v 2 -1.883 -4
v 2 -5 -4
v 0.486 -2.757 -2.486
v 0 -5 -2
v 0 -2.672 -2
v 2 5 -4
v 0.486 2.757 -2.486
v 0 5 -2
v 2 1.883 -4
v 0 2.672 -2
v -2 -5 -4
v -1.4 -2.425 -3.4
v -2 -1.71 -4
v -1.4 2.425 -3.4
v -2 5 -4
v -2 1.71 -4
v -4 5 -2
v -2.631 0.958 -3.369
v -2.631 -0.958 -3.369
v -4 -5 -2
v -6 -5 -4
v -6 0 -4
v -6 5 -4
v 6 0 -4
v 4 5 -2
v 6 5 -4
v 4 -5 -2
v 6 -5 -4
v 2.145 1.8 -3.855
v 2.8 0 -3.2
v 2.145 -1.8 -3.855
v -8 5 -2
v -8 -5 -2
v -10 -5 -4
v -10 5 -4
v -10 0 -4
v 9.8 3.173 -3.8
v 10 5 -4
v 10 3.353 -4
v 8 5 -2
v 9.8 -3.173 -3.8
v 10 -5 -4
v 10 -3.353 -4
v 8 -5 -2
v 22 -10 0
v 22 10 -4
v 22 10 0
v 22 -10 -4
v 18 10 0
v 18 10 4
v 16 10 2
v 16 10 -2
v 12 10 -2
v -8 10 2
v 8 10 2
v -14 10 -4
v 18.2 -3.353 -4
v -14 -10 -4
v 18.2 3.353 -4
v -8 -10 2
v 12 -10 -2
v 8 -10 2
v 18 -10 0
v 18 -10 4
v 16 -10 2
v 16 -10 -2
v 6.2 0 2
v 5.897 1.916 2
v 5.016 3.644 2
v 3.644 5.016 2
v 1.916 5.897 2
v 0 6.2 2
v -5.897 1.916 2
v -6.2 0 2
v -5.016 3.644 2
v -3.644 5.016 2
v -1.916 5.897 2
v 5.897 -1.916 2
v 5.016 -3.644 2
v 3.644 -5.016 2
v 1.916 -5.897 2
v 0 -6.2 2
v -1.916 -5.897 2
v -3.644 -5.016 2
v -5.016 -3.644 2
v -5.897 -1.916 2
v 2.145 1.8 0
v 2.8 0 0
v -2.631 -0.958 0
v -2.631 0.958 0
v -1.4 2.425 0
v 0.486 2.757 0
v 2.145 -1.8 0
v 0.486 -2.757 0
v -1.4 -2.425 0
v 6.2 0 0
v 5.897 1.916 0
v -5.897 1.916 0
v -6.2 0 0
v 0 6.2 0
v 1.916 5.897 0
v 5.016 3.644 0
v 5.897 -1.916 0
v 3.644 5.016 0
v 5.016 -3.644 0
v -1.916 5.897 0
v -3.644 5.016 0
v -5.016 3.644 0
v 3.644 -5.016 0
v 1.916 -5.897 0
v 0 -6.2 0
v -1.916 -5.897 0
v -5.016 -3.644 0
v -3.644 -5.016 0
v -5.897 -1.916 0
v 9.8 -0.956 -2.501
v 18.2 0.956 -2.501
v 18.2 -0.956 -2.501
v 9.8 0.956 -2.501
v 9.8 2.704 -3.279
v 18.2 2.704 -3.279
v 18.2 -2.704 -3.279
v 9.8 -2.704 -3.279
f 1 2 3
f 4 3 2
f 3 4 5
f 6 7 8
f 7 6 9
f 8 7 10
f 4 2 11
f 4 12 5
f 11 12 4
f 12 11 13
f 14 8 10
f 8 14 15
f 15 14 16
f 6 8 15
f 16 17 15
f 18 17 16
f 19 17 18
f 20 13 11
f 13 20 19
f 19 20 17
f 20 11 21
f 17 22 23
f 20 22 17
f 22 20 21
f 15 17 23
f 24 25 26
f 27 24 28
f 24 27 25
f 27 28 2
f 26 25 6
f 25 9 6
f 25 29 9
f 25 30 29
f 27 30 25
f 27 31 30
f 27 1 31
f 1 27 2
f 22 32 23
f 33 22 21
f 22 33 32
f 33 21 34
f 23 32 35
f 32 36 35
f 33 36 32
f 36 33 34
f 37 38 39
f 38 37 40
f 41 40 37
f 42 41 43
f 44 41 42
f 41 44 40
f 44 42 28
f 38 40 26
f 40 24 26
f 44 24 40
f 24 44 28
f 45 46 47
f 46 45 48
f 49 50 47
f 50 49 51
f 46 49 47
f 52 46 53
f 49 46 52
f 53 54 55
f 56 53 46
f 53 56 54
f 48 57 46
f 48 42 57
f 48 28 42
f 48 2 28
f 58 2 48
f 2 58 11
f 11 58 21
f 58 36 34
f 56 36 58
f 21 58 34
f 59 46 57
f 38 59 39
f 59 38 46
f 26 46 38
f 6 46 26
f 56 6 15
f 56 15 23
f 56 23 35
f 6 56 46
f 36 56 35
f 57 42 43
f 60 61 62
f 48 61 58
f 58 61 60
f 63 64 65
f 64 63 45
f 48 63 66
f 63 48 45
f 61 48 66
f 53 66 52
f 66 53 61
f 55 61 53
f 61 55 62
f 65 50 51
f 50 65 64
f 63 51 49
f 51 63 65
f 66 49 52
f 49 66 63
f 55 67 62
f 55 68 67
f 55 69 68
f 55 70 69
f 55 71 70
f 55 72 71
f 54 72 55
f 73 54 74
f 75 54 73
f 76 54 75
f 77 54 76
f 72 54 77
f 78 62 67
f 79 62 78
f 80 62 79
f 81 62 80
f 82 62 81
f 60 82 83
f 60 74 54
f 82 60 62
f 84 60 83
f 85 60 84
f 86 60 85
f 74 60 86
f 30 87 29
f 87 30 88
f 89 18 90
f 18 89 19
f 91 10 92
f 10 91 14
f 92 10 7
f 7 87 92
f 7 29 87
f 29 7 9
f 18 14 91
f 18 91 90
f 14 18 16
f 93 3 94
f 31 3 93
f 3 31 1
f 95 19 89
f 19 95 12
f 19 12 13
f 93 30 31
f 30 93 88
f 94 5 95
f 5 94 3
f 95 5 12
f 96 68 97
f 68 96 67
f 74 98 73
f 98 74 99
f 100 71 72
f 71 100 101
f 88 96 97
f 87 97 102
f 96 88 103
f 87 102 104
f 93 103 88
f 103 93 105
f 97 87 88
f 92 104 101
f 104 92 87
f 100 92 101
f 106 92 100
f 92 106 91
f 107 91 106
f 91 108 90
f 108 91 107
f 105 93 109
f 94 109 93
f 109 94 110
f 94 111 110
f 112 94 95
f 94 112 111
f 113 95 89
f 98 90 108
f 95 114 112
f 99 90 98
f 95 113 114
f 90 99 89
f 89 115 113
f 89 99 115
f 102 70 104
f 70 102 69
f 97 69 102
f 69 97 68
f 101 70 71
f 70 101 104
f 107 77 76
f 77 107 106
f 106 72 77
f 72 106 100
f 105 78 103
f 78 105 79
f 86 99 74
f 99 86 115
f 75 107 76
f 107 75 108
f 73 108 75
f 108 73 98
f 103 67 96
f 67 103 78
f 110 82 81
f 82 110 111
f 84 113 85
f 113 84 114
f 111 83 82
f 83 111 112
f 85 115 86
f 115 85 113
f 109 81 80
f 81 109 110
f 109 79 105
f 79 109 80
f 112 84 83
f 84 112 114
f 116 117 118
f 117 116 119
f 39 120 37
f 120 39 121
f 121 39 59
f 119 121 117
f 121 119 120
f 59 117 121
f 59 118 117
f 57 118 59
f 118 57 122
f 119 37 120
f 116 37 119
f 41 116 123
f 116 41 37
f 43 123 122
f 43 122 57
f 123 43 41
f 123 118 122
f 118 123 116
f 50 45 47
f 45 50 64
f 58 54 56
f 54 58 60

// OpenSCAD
intersection () {
  difference () {
    cube ([44, 20, 8], center=true);
    translate ([14, 0, 0]) {
      cube ([4, 20, 4], center=true);
    }
    translate ([12, 0, 4]) {
      rotate (a=45.0, v=[0, 1, 0]) {
        cube ([8.48528137423857, 20, 8.48528137423857], center=true);
      }
    }
    translate ([16, 0, 0]) {
      rotate (a=45.0, v=[0, 1, 0]) {
        cube ([2.8284271247461903, 20, 2.8284271247461903], center=true);
      }
    }
    translate ([0, 0, 3]) {
      cube ([20, 20, 2], center=true);
    }
    cylinder (h=8, r=2.8, center=true);
    translate ([0, 0, 1]) {
      cylinder (h=2, r=6.2, center=true);
    }
    translate ([0, 0, -4]) {
      rotate (a=90.0, v=[1, 0, 0]) {
        union () {
          rotate (a=45.0, v=[0, 0, 1]) {
            cube ([2.8284271247461903, 2.8284271247461903, 10], center=true);
          }
          translate ([-4, 0, 0]) {
            rotate (a=45.0, v=[0, 0, 1]) {
              cube ([2.8284271247461903, 2.8284271247461903, 10], center=true);
            }
          }
          translate ([4, 0, 0]) {
            rotate (a=45.0, v=[0, 0, 1]) {
              cube ([2.8284271247461903, 2.8284271247461903, 10], center=true);
            }
          }
          translate ([-8, 0, 0]) {
            rotate (a=45.0, v=[0, 0, 1]) {
              cube ([2.8284271247461903, 2.8284271247461903, 10], center=true);
            }
          }
          translate ([8, 0, 0]) {
            rotate (a=45.0, v=[0, 0, 1]) {
              cube ([2.8284271247461903, 2.8284271247461903, 10], center=true);
            }
          }
        }
      }
    }
    translate ([14, 0, -7]) {
      rotate (a=90.0, v=[0, 1, 0]) {
        cylinder (h=8.4, r=4.6, center=true);
      }
    }
  }
  translate ([6, 0, -4]) {
    rotate (a=45.0, v=[0, 1, 0]) {
      cube ([28.284271247461902, 20, 28.284271247461902], center=true);
    }
  }
}
